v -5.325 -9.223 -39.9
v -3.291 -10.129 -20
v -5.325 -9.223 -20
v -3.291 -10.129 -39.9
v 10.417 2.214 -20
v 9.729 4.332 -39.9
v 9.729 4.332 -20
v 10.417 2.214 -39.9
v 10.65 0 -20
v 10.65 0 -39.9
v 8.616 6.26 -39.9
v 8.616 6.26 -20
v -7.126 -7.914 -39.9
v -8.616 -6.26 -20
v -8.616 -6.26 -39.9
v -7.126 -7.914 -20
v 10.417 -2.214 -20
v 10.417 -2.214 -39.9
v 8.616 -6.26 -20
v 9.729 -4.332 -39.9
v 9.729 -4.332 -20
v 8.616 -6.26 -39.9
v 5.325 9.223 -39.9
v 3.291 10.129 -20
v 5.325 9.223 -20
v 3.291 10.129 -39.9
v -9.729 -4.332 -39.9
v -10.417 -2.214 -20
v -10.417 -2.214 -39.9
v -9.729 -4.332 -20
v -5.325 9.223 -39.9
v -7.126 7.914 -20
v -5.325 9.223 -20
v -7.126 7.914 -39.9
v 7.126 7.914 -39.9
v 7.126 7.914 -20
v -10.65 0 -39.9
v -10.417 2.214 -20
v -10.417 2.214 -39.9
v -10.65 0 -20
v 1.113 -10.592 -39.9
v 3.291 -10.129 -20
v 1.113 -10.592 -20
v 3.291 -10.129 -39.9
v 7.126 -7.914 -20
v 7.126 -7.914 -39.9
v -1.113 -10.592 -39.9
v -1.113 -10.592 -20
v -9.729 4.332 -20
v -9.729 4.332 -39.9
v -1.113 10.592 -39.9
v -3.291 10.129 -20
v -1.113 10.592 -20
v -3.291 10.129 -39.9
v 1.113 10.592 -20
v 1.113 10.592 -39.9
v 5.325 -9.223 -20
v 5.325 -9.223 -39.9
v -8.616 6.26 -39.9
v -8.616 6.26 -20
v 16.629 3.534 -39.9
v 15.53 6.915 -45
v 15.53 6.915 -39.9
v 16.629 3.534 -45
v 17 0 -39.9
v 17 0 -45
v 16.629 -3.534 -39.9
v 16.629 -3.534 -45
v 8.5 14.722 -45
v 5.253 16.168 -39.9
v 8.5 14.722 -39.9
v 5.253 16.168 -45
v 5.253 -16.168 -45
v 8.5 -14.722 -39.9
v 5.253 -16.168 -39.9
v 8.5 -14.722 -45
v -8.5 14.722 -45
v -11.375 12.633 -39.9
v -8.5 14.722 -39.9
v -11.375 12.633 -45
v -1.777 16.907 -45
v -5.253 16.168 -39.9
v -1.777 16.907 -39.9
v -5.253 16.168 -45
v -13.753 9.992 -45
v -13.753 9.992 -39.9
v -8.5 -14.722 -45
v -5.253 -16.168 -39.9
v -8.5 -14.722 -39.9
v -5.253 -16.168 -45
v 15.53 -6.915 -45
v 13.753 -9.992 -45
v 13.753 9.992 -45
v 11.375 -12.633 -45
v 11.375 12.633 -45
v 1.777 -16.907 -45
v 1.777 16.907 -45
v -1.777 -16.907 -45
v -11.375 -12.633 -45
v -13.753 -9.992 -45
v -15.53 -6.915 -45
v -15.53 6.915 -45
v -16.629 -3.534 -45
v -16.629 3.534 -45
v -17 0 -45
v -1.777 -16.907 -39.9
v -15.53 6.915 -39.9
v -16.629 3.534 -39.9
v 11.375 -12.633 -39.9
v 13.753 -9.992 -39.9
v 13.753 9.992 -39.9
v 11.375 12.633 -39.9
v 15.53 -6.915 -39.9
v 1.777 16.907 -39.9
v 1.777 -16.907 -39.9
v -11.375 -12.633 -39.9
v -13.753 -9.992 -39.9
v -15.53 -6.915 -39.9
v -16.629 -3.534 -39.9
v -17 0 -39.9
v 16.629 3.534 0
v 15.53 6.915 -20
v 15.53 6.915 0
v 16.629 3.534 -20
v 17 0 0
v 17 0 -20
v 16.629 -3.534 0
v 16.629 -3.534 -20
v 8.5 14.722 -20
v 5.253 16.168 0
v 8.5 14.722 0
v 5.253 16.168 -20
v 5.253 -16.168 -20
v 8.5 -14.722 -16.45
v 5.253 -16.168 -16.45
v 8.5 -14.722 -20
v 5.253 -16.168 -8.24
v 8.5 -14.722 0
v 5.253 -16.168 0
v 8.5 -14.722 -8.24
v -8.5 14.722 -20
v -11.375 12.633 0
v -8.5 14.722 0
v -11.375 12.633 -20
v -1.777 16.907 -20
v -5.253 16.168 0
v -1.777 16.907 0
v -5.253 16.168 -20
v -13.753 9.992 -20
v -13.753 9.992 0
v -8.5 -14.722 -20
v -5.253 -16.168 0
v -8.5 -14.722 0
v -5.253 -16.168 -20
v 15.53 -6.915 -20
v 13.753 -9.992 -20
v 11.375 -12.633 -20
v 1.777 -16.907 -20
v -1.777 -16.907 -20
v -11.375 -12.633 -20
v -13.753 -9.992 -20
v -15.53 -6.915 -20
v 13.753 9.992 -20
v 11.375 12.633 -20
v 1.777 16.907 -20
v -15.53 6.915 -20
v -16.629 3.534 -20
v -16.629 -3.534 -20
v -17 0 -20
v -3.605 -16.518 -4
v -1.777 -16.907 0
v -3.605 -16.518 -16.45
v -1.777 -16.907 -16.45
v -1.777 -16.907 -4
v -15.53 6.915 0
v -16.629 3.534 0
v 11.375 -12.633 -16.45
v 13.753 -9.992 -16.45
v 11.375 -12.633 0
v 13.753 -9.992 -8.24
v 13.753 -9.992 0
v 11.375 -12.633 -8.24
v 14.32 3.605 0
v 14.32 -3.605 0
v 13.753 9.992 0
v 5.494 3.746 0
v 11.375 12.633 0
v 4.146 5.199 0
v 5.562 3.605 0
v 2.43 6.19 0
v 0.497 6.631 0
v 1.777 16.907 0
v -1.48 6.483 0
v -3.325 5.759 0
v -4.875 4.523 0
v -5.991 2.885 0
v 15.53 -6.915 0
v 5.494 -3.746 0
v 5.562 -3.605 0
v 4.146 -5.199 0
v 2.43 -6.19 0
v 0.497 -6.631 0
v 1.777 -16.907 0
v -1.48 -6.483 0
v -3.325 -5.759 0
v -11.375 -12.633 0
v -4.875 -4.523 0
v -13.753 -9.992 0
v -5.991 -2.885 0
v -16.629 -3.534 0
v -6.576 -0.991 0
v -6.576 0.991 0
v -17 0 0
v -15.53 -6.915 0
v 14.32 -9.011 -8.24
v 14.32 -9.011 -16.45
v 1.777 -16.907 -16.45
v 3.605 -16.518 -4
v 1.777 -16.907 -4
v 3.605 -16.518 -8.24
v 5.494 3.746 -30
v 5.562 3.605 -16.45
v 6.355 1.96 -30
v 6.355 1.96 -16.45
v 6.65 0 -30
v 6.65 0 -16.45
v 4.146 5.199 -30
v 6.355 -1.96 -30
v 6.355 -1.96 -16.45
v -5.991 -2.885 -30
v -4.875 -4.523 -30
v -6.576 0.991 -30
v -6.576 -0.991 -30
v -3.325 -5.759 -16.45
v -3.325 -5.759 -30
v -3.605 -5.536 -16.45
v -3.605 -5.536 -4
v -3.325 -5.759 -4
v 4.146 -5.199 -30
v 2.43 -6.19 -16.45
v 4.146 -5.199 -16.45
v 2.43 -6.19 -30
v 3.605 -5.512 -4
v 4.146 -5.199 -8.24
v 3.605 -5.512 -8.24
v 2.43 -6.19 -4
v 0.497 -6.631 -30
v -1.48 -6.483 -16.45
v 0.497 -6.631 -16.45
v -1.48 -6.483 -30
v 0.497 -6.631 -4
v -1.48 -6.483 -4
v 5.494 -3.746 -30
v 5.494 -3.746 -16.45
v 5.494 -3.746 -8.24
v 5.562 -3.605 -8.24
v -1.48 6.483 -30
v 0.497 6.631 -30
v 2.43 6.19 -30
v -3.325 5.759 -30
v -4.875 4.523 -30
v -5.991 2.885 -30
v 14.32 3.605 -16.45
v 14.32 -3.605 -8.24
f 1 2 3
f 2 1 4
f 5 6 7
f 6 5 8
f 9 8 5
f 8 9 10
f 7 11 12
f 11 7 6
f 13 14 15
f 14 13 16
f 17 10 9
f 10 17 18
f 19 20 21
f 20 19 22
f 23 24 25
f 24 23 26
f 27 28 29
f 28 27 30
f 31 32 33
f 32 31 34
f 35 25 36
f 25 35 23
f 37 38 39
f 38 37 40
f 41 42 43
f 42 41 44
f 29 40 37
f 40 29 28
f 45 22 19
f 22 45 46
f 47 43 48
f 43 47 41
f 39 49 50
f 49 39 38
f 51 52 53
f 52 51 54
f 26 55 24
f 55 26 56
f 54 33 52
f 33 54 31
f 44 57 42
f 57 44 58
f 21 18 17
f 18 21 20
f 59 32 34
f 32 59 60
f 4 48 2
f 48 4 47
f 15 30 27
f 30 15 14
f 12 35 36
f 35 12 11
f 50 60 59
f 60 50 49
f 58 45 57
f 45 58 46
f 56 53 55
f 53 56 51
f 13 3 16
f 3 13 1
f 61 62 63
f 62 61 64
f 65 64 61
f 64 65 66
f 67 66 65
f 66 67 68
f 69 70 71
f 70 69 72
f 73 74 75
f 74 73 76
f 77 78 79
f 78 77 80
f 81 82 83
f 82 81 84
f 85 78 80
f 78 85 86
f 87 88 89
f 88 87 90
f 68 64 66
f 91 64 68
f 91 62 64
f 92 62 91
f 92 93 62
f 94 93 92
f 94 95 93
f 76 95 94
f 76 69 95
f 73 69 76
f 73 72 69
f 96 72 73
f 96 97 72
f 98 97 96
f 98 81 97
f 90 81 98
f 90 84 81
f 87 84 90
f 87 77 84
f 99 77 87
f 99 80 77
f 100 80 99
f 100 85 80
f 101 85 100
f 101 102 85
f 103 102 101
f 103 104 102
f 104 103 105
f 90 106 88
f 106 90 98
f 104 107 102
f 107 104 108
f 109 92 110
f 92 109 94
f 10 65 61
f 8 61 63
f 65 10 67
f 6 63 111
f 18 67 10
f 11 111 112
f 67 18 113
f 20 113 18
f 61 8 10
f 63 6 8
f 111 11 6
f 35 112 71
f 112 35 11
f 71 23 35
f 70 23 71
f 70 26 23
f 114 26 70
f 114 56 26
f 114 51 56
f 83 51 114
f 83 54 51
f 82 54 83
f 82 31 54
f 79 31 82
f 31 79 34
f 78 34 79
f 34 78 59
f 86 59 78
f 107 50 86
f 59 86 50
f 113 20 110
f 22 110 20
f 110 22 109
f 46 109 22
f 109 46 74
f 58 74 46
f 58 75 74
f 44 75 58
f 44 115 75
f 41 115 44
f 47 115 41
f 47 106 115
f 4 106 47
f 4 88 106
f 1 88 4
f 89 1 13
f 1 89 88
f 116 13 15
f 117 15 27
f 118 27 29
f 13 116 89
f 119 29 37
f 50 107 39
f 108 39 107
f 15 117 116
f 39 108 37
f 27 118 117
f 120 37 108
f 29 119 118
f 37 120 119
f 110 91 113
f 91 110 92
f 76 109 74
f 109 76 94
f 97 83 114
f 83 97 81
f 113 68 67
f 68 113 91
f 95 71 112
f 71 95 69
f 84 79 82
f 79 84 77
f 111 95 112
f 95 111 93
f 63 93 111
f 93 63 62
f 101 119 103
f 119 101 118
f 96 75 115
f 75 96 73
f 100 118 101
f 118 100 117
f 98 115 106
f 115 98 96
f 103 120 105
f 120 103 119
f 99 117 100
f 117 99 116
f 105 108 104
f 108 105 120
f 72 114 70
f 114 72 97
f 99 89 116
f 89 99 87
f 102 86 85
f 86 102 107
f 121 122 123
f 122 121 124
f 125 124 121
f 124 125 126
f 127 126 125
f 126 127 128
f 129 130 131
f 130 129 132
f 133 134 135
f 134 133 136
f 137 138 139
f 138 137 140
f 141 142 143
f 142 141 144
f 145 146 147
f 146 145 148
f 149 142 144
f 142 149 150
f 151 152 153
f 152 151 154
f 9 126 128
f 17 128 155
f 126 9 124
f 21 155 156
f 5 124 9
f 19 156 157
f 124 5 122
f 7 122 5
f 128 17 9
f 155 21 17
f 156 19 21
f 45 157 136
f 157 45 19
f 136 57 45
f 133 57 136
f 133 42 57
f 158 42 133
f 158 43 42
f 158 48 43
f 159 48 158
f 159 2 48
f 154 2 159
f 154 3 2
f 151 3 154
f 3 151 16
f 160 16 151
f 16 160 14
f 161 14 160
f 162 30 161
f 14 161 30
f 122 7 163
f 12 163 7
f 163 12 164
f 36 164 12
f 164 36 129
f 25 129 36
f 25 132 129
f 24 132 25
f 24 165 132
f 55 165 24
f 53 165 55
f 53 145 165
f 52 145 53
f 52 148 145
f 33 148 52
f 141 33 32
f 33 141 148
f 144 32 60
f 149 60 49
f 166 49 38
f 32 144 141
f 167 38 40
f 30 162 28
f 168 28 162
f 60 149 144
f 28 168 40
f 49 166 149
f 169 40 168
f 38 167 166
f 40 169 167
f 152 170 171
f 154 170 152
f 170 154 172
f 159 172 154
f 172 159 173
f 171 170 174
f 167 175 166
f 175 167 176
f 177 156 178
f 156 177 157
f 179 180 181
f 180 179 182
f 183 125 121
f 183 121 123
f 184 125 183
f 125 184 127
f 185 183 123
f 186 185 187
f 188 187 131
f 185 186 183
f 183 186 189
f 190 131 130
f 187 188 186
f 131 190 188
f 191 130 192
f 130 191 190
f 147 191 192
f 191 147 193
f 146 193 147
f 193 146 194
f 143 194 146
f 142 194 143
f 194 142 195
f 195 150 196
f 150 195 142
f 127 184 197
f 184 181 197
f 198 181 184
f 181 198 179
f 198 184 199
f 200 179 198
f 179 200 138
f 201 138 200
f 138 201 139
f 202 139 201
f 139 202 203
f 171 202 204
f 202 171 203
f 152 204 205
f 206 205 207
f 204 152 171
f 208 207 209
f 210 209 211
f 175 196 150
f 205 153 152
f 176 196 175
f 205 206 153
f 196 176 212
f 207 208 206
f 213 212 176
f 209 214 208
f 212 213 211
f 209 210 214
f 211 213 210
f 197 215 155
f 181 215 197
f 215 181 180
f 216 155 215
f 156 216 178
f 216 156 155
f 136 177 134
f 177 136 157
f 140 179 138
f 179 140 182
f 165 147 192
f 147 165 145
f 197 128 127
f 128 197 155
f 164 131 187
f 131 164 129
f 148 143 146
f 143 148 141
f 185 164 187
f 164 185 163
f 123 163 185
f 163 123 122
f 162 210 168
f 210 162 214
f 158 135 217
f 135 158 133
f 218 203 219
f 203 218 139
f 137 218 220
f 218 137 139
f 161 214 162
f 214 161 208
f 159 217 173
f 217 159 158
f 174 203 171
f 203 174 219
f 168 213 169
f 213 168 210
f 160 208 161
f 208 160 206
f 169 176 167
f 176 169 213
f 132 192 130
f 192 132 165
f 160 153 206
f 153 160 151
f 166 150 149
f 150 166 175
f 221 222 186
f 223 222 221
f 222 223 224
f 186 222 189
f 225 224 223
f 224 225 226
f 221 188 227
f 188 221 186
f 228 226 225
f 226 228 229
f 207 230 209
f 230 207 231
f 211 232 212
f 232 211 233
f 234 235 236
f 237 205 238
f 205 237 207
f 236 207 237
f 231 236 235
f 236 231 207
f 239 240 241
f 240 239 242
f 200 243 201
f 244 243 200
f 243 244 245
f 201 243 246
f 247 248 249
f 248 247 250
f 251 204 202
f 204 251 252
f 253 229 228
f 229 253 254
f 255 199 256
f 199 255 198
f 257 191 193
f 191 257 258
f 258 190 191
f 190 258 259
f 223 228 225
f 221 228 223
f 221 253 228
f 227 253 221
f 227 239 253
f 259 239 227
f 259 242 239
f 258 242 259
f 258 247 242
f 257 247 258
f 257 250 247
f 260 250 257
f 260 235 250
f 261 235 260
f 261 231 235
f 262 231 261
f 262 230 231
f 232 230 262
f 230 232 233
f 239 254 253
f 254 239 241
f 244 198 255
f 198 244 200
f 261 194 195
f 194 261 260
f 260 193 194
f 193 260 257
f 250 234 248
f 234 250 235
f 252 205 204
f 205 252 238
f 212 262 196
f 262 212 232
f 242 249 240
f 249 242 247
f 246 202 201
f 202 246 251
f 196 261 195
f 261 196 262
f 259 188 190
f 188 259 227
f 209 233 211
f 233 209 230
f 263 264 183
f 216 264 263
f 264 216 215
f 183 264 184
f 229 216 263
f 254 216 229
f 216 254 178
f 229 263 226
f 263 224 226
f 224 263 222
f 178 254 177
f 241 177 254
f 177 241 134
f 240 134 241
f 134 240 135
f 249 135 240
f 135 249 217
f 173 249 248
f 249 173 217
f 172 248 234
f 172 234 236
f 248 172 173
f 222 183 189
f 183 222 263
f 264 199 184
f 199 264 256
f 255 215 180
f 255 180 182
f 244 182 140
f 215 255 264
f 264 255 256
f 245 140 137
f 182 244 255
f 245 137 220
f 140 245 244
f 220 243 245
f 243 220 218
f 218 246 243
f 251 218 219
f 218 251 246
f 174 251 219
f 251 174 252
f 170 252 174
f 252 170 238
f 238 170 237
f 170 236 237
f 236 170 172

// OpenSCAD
base_d = 16+6+6+6;
base_h = 20;

shaft_d = 13.3;

peg_d = 6.41 + 0.8;
peg_l = 14.32; // from 0,0 not edge of shaft



difference() {
    // Mount body
    translate([0, 0, -base_h]) {                
        // mount outer cylinder
        cylinder(h=base_h, d=base_d);
        
        // hook's shaft
        mid_cyl_h = 20;
        translate([0, 0, -mid_cyl_h]) {
            cylinder(d=shaft_d + 8, h=mid_cyl_h + 0.1);
            cyl_cap_h = 5;
            translate([0, 0, -cyl_cap_h]) {
            cylinder(d=base_d, h=cyl_cap_h + 0.1);
            }
        }
    }
    // shaft
    shaft_h = 30;
    translate([0, 0, -shaft_h])
        cylinder(h=shaft_h+1, d=shaft_d);
    
    // peg vert slot
    pvs = 16.45;
    translate([0, peg_d/-2, -pvs])
        cube([peg_l, peg_d, pvs+1]);
    
    // peg rotate window
    pls_o = 4;
    pls = pvs - pls_o;
    translate([0, peg_l*-2, -pvs])
        cube([peg_l, peg_l*2, peg_d+1]);
    
    // peg lock slot
    translate([peg_d/-2, peg_l*-2, -pvs])
        cube([peg_d, peg_l*2, pvs-pls_o]);
}
